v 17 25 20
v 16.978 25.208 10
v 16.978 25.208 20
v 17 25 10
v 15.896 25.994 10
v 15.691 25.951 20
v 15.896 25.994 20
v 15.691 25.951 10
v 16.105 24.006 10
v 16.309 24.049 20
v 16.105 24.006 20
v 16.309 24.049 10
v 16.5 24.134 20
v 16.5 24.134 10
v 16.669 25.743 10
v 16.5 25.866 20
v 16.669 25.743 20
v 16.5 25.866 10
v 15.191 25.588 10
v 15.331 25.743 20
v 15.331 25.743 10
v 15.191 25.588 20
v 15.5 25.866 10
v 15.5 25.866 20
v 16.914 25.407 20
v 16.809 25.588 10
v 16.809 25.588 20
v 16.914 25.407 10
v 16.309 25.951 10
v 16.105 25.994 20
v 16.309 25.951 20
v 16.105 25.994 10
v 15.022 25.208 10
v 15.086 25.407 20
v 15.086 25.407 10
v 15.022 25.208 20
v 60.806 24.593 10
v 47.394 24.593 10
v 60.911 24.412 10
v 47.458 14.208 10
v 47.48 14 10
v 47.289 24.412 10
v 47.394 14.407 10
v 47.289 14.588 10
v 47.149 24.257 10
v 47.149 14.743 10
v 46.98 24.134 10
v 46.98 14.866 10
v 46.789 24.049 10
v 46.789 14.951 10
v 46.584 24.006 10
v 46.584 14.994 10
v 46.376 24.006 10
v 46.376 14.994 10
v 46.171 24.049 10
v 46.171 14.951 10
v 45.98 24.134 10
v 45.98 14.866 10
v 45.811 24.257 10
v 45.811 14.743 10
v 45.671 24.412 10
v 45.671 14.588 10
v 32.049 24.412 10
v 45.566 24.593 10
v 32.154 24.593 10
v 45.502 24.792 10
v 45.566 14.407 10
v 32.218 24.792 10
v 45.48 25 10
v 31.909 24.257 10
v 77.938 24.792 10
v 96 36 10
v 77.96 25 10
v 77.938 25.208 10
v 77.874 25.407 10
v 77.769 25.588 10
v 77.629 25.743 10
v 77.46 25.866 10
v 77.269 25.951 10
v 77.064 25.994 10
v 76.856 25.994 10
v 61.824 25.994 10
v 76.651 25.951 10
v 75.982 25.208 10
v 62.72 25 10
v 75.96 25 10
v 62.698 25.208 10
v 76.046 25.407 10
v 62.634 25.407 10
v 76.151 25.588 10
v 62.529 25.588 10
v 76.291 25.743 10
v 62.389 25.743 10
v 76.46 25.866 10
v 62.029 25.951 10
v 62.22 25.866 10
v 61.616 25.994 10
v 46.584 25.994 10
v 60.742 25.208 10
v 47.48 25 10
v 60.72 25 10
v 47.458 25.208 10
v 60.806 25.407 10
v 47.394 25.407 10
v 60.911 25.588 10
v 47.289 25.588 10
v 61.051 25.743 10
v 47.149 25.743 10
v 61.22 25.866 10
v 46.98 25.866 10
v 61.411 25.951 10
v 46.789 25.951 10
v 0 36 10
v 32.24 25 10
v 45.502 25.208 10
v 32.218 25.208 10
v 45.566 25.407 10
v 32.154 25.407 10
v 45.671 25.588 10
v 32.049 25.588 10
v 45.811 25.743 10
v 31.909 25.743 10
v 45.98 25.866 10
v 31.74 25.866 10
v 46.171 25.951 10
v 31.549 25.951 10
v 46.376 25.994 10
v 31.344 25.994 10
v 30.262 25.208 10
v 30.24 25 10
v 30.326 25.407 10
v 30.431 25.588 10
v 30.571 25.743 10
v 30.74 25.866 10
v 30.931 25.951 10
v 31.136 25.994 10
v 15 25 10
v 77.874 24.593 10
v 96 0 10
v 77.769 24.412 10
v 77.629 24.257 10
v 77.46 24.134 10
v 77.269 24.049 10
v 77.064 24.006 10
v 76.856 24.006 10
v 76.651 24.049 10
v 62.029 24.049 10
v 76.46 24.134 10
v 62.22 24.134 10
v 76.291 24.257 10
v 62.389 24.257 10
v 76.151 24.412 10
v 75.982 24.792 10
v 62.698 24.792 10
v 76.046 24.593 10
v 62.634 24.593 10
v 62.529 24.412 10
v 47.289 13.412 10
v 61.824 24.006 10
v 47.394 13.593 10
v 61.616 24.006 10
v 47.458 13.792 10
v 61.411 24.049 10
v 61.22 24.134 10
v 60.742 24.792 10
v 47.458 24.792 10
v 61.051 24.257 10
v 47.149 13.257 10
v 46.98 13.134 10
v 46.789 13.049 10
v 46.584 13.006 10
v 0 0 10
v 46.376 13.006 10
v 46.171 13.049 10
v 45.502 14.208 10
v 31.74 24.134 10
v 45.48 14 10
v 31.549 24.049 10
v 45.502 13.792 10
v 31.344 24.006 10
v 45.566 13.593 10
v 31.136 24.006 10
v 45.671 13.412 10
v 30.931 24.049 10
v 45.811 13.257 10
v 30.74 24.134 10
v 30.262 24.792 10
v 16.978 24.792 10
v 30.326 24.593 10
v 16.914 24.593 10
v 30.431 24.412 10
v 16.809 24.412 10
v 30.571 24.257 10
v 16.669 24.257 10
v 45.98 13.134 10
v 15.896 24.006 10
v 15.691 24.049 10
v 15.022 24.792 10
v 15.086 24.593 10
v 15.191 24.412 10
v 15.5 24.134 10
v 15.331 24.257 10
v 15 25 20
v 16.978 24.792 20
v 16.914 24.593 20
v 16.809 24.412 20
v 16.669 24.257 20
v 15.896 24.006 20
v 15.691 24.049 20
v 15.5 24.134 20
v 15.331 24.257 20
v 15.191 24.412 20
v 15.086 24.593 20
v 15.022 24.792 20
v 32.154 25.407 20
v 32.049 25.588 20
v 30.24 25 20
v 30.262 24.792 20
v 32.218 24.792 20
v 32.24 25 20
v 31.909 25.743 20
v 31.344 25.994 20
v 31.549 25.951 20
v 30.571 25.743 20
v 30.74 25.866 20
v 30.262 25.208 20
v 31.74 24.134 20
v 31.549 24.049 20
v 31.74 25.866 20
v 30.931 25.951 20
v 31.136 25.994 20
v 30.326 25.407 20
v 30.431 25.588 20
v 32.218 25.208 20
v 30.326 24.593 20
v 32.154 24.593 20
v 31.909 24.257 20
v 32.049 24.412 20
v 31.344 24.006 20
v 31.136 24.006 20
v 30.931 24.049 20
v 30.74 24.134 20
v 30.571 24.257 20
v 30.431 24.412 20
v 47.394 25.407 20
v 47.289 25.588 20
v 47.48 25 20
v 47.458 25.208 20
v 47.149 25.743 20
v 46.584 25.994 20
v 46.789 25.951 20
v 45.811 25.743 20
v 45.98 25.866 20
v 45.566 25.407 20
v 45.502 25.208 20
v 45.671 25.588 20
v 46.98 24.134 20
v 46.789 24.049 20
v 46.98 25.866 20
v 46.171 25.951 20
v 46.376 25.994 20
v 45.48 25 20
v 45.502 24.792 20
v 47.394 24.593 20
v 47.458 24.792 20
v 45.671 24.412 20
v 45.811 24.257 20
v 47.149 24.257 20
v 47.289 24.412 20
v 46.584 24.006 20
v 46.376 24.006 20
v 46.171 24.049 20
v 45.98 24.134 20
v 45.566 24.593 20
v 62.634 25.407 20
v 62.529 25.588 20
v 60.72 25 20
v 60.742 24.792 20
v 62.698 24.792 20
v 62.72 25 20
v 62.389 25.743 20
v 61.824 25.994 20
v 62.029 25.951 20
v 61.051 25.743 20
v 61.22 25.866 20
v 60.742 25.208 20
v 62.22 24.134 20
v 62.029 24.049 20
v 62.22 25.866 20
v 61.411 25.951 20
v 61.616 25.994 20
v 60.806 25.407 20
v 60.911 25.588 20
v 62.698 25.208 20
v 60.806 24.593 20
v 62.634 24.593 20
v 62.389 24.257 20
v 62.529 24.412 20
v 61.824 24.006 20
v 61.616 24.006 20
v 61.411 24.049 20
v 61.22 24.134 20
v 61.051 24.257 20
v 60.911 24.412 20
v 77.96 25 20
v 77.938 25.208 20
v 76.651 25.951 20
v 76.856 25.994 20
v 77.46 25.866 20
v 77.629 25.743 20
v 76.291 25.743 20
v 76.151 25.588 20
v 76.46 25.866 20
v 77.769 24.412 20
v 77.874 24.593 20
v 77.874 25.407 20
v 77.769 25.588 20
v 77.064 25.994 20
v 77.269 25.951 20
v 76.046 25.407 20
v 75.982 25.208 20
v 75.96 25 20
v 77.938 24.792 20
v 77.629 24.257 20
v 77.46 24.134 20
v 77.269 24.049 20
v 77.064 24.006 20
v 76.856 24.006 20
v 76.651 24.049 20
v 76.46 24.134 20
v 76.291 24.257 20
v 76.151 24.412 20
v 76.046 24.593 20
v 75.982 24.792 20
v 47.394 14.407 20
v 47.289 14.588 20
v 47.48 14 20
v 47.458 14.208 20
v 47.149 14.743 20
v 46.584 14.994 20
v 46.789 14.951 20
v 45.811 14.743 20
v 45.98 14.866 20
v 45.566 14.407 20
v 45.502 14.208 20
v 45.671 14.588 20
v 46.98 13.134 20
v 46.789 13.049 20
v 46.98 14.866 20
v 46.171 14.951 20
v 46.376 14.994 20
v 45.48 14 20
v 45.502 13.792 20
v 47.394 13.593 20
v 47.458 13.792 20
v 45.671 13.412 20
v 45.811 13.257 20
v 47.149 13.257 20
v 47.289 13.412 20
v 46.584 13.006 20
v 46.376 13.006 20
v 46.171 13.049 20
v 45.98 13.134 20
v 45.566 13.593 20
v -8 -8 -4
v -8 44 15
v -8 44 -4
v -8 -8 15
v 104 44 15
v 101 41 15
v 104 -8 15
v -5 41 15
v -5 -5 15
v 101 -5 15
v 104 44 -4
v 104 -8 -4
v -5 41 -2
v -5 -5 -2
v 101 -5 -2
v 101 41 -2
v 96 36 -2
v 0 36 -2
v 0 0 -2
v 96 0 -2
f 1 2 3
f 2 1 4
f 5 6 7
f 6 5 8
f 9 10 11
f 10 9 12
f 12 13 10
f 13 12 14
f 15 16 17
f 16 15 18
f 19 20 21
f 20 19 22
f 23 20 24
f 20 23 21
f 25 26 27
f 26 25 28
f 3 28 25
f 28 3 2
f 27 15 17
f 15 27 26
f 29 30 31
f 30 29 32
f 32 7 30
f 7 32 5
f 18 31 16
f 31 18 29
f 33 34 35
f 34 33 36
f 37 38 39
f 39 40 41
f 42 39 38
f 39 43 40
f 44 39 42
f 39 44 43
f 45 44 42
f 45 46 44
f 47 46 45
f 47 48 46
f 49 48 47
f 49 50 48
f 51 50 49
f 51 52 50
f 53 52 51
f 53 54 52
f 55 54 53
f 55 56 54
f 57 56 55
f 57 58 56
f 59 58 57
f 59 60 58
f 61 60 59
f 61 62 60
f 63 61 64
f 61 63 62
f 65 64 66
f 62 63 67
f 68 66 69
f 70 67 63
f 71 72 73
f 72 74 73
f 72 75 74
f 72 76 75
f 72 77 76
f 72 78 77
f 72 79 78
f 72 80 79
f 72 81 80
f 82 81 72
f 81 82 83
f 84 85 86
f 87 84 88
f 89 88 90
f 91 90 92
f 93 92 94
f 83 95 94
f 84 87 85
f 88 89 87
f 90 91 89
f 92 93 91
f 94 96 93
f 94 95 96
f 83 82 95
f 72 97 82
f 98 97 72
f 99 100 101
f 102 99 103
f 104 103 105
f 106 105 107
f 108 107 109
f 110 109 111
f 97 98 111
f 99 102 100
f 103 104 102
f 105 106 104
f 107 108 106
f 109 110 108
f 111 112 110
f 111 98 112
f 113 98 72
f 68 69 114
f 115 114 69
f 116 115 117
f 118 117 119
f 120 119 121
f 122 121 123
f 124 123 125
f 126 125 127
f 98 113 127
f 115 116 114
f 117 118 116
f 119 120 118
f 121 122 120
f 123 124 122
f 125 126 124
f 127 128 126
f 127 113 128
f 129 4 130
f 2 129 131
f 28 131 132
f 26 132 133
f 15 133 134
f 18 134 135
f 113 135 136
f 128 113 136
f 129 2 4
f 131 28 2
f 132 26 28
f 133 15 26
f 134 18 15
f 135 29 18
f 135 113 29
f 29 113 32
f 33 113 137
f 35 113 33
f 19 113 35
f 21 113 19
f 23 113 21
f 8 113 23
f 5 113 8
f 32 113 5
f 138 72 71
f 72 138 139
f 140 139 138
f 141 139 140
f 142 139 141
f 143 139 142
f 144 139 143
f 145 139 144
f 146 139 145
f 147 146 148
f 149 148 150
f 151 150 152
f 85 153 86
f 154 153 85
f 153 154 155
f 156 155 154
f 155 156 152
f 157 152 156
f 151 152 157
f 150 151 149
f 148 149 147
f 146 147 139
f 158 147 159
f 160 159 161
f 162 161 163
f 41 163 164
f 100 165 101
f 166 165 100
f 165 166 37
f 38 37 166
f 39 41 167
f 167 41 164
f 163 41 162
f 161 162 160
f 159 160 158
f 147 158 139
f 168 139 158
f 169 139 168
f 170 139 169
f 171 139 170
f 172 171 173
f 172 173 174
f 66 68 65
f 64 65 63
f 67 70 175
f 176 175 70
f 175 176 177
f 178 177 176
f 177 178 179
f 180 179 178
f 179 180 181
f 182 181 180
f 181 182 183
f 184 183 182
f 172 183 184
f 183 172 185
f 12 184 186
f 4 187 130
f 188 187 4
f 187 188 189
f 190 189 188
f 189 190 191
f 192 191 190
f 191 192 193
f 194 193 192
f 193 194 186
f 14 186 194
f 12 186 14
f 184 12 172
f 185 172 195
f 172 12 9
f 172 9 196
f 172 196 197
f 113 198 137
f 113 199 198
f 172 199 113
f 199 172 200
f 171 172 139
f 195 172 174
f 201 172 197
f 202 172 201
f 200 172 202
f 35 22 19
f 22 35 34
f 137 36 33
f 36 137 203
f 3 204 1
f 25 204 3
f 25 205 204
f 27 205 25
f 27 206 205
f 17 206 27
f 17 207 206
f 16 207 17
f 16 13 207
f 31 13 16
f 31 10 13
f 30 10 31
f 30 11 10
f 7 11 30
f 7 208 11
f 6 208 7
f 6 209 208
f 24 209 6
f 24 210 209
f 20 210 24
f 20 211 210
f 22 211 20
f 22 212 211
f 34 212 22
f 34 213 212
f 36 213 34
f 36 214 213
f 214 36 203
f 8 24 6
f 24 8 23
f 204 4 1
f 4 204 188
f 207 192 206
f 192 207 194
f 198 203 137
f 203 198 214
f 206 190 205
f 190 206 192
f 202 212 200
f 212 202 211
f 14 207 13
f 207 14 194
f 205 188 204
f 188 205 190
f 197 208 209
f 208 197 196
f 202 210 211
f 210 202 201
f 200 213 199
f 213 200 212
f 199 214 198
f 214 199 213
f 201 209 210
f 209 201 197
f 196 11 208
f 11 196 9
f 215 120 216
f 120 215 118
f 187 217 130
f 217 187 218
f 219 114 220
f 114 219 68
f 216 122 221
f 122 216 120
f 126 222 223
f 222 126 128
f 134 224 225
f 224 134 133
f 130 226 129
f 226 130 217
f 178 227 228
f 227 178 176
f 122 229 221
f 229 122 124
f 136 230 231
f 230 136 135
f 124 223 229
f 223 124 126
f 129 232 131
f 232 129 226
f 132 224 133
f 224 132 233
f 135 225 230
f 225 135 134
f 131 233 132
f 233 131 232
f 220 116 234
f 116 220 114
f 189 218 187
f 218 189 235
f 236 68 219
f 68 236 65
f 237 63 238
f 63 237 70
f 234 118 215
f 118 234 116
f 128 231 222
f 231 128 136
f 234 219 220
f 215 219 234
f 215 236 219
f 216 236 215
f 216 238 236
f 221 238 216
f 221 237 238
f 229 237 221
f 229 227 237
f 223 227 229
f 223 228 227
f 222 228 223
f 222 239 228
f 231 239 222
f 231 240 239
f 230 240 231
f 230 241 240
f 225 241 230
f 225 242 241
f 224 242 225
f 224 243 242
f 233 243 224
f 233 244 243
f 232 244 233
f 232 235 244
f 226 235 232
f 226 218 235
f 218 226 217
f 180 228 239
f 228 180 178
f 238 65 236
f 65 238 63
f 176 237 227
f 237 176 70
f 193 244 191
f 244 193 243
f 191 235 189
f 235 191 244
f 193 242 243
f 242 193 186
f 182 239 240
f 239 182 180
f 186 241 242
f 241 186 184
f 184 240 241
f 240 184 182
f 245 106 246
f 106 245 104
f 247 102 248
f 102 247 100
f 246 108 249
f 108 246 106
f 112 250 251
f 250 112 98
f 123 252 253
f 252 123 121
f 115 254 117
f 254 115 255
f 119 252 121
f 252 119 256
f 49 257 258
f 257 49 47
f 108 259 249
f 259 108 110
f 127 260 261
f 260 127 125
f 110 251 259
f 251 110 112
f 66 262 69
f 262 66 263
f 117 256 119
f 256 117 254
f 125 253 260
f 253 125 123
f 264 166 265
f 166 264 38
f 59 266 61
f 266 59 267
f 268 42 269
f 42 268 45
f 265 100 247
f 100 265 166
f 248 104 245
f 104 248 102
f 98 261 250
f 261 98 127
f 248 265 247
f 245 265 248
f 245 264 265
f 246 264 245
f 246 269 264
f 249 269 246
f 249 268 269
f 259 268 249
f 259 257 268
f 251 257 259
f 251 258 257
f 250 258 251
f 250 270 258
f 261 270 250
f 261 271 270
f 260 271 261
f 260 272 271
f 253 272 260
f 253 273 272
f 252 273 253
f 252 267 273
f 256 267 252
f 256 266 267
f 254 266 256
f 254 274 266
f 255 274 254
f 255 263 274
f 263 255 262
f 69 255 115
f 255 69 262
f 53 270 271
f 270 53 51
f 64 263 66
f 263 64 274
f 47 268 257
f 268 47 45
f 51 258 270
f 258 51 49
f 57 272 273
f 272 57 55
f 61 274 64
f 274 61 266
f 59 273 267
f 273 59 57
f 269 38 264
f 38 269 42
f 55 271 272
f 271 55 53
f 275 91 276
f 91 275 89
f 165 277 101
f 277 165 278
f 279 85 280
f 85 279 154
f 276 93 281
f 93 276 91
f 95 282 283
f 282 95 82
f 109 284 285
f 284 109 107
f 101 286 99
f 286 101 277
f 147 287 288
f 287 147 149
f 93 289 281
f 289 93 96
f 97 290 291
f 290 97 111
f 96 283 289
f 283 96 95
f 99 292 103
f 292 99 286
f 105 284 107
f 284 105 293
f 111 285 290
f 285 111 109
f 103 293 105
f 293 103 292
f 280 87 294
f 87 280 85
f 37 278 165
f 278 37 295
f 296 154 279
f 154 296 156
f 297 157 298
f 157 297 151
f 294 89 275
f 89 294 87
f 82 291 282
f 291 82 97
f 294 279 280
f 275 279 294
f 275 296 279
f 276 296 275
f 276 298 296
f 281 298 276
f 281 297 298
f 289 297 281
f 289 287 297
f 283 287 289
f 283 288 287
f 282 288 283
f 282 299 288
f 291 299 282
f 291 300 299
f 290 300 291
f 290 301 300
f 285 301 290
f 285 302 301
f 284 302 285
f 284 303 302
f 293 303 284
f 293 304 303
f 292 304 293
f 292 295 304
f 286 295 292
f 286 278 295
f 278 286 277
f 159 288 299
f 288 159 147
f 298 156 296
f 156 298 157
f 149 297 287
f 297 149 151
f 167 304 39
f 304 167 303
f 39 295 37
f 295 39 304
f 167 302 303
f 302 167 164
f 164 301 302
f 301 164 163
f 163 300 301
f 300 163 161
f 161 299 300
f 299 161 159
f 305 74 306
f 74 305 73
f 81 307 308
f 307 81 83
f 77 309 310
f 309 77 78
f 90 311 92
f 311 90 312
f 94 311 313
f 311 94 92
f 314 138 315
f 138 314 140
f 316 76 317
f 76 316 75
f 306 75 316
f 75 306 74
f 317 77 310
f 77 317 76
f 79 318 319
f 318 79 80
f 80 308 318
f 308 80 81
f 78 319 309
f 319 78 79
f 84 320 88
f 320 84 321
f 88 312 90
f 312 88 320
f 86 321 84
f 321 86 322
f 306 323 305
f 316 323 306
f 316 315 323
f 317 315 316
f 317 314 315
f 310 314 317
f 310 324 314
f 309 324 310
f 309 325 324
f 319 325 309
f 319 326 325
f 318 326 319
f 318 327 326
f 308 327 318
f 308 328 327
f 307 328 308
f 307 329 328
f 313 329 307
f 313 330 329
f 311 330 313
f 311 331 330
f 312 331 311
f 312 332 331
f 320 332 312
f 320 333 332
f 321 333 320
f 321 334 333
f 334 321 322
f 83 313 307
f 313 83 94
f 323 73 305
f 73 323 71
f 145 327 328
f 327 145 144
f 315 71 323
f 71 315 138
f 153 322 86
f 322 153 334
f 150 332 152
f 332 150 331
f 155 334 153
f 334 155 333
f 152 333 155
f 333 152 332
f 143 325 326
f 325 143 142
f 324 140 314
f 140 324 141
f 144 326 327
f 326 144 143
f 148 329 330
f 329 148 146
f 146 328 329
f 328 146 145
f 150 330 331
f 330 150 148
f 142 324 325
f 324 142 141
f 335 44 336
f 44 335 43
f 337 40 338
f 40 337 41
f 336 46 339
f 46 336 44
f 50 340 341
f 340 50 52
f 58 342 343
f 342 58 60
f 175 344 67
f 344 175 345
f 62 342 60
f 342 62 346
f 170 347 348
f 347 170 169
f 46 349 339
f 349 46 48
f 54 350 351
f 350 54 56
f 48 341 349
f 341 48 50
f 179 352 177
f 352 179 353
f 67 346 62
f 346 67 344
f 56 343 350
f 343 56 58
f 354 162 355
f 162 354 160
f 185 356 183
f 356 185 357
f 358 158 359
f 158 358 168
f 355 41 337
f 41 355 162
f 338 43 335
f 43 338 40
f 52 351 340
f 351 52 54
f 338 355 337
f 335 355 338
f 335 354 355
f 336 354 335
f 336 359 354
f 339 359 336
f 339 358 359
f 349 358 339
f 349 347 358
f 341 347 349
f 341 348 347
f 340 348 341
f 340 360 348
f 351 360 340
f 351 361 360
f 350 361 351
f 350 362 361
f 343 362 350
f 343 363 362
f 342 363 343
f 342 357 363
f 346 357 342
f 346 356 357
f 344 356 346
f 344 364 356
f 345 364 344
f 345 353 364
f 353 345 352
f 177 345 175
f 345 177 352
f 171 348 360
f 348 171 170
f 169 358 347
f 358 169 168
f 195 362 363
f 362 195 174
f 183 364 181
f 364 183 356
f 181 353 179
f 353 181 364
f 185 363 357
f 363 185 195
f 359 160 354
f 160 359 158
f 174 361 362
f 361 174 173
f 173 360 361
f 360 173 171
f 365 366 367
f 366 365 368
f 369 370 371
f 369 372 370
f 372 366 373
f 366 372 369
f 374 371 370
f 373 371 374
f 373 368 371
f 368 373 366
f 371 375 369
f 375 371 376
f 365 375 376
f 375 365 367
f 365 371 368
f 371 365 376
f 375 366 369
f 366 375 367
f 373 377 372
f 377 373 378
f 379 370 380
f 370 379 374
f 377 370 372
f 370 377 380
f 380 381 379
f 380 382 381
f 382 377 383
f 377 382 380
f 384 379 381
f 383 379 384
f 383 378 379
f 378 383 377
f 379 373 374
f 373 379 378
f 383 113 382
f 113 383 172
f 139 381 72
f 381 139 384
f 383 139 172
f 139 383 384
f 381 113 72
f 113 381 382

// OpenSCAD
//Taken from Python key label script...
BUTTON_COUNT_X=5;
BUTTON_COUNT_Y=8;

BUTTON_WIDTH=120;
BUTTON_HEIGHT=80;
BUTTON_GAP_HORZ=32.4;
BUTTON_GAP_VERT=72.4;
//BUTTON_BORDER_HORZ=20;
//BUTTON_BORDER_VERT=20;

//Added here
BUTTON_THICKNESS=40;

BUTTON_LIP_WIDTH=0; //harder to mold
BUTTON_LIP_HEIGHT=10;
BUTTON_LIP_THICKNESS=12;

SPINE_WIDTH=5*BUTTON_WIDTH+4*BUTTON_GAP_HORZ+BUTTON_LIP_WIDTH*2;
SPINE_HEIGHT=40;
SPINE_THICKNESS=BUTTON_LIP_THICKNESS;

MOLD_BOTTOM_THICKNESS=20;
MOLD_WALL_THICKNESS=30;
MOLD_INNER_WIDTH=900;
MOLD_INNER_HEIGHT=300;
//MOLD_INNER_THICKNESS=150;
MOLD_INNER_THICKNESS=100;

SPRUE_HEIGHT=100;
SPRUE_RADIUS=10;
SPRUE_Y=BUTTON_LIP_HEIGHT*2+BUTTON_HEIGHT+SPINE_HEIGHT-SPRUE_RADIUS;

SHELL_GAP=50;
SHELL_BOTTOM_THICKNESS=50;

scale([0.1,0.1,0.1])
{
  union()
  {
    translate([100,120,MOLD_INNER_THICKNESS])
    {
      //key_row();
      sprues();
    }
    translate([-(SHELL_GAP+MOLD_WALL_THICKNESS), -(SHELL_GAP+MOLD_WALL_THICKNESS),-2*MOLD_BOTTOM_THICKNESS])
      shell_box();
    mold_box();
  }
}


module mold_box()
{
  difference()
  {
    translate([0,0,-MOLD_BOTTOM_THICKNESS])
    cube([MOLD_INNER_WIDTH+
      MOLD_WALL_THICKNESS*2,
      MOLD_INNER_HEIGHT+MOLD_WALL_THICKNESS*2,
      MOLD_BOTTOM_THICKNESS+MOLD_INNER_THICKNESS]);
    //translate([MOLD_WALL_THICKNESS,
      //MOLD_WALL_THICKNESS,0])
    //cube([MOLD_INNER_WIDTH,MOLD_INNER_HEIGHT,
      //MOLD_INNER_THICKNESS+
      //MOLD_BOTTOM_THICKNESS]);
  }
}


module key_row()
{

union()
{

for (i=[0:BUTTON_COUNT_X-1])
{
  translate([(BUTTON_WIDTH+BUTTON_GAP_HORZ)*i,
  0,0])
  {
    union()
    {

      //Bottom lip
      //(note lip on bottom AND top!!!)
      cube([BUTTON_LIP_WIDTH*2+BUTTON_WIDTH,
        BUTTON_LIP_HEIGHT*2+BUTTON_HEIGHT,
        BUTTON_LIP_THICKNESS]);

      //Button
      translate([BUTTON_LIP_WIDTH,
        BUTTON_LIP_HEIGHT,0])
      cube([BUTTON_WIDTH,
        BUTTON_HEIGHT,
        BUTTON_THICKNESS]);
      
    }
  }
}

//Spine
translate([0,BUTTON_LIP_HEIGHT*2+BUTTON_HEIGHT,
  0])
cube([SPINE_WIDTH, SPINE_HEIGHT,
  SPINE_THICKNESS]);

}

}

module sprues()
{
  for (i=[0:BUTTON_COUNT_X-1])
  {
    translate([(BUTTON_WIDTH+BUTTON_GAP_HORZ)*i+BUTTON_WIDTH/2, SPRUE_Y, 0])
    {
      cylinder(SPRUE_HEIGHT, SPRUE_RADIUS, SPRUE_RADIUS, false);
    }
  }
  
  translate([(BUTTON_WIDTH+BUTTON_GAP_HORZ)*2+BUTTON_WIDTH/2, BUTTON_LIP_HEIGHT+SPRUE_RADIUS, 0])
  cylinder(SPRUE_HEIGHT, SPRUE_RADIUS, SPRUE_RADIUS, false);
}

module shell_box()
{
  difference()
  {
    cube([MOLD_INNER_WIDTH+4*MOLD_WALL_THICKNESS+2*SHELL_GAP,
    MOLD_INNER_HEIGHT+4*MOLD_WALL_THICKNESS+2*SHELL_GAP, MOLD_INNER_THICKNESS+MOLD_BOTTOM_THICKNESS*2+SHELL_BOTTOM_THICKNESS]);

    translate([MOLD_WALL_THICKNESS,
      MOLD_WALL_THICKNESS,
      MOLD_BOTTOM_THICKNESS])
    #cube([MOLD_INNER_WIDTH+2*MOLD_WALL_THICKNESS+2*SHELL_GAP,
    MOLD_INNER_HEIGHT+2*MOLD_WALL_THICKNESS+2*SHELL_GAP, MOLD_INNER_THICKNESS+MOLD_BOTTOM_THICKNESS+SHELL_BOTTOM_THICKNESS+1]);
  }
}
